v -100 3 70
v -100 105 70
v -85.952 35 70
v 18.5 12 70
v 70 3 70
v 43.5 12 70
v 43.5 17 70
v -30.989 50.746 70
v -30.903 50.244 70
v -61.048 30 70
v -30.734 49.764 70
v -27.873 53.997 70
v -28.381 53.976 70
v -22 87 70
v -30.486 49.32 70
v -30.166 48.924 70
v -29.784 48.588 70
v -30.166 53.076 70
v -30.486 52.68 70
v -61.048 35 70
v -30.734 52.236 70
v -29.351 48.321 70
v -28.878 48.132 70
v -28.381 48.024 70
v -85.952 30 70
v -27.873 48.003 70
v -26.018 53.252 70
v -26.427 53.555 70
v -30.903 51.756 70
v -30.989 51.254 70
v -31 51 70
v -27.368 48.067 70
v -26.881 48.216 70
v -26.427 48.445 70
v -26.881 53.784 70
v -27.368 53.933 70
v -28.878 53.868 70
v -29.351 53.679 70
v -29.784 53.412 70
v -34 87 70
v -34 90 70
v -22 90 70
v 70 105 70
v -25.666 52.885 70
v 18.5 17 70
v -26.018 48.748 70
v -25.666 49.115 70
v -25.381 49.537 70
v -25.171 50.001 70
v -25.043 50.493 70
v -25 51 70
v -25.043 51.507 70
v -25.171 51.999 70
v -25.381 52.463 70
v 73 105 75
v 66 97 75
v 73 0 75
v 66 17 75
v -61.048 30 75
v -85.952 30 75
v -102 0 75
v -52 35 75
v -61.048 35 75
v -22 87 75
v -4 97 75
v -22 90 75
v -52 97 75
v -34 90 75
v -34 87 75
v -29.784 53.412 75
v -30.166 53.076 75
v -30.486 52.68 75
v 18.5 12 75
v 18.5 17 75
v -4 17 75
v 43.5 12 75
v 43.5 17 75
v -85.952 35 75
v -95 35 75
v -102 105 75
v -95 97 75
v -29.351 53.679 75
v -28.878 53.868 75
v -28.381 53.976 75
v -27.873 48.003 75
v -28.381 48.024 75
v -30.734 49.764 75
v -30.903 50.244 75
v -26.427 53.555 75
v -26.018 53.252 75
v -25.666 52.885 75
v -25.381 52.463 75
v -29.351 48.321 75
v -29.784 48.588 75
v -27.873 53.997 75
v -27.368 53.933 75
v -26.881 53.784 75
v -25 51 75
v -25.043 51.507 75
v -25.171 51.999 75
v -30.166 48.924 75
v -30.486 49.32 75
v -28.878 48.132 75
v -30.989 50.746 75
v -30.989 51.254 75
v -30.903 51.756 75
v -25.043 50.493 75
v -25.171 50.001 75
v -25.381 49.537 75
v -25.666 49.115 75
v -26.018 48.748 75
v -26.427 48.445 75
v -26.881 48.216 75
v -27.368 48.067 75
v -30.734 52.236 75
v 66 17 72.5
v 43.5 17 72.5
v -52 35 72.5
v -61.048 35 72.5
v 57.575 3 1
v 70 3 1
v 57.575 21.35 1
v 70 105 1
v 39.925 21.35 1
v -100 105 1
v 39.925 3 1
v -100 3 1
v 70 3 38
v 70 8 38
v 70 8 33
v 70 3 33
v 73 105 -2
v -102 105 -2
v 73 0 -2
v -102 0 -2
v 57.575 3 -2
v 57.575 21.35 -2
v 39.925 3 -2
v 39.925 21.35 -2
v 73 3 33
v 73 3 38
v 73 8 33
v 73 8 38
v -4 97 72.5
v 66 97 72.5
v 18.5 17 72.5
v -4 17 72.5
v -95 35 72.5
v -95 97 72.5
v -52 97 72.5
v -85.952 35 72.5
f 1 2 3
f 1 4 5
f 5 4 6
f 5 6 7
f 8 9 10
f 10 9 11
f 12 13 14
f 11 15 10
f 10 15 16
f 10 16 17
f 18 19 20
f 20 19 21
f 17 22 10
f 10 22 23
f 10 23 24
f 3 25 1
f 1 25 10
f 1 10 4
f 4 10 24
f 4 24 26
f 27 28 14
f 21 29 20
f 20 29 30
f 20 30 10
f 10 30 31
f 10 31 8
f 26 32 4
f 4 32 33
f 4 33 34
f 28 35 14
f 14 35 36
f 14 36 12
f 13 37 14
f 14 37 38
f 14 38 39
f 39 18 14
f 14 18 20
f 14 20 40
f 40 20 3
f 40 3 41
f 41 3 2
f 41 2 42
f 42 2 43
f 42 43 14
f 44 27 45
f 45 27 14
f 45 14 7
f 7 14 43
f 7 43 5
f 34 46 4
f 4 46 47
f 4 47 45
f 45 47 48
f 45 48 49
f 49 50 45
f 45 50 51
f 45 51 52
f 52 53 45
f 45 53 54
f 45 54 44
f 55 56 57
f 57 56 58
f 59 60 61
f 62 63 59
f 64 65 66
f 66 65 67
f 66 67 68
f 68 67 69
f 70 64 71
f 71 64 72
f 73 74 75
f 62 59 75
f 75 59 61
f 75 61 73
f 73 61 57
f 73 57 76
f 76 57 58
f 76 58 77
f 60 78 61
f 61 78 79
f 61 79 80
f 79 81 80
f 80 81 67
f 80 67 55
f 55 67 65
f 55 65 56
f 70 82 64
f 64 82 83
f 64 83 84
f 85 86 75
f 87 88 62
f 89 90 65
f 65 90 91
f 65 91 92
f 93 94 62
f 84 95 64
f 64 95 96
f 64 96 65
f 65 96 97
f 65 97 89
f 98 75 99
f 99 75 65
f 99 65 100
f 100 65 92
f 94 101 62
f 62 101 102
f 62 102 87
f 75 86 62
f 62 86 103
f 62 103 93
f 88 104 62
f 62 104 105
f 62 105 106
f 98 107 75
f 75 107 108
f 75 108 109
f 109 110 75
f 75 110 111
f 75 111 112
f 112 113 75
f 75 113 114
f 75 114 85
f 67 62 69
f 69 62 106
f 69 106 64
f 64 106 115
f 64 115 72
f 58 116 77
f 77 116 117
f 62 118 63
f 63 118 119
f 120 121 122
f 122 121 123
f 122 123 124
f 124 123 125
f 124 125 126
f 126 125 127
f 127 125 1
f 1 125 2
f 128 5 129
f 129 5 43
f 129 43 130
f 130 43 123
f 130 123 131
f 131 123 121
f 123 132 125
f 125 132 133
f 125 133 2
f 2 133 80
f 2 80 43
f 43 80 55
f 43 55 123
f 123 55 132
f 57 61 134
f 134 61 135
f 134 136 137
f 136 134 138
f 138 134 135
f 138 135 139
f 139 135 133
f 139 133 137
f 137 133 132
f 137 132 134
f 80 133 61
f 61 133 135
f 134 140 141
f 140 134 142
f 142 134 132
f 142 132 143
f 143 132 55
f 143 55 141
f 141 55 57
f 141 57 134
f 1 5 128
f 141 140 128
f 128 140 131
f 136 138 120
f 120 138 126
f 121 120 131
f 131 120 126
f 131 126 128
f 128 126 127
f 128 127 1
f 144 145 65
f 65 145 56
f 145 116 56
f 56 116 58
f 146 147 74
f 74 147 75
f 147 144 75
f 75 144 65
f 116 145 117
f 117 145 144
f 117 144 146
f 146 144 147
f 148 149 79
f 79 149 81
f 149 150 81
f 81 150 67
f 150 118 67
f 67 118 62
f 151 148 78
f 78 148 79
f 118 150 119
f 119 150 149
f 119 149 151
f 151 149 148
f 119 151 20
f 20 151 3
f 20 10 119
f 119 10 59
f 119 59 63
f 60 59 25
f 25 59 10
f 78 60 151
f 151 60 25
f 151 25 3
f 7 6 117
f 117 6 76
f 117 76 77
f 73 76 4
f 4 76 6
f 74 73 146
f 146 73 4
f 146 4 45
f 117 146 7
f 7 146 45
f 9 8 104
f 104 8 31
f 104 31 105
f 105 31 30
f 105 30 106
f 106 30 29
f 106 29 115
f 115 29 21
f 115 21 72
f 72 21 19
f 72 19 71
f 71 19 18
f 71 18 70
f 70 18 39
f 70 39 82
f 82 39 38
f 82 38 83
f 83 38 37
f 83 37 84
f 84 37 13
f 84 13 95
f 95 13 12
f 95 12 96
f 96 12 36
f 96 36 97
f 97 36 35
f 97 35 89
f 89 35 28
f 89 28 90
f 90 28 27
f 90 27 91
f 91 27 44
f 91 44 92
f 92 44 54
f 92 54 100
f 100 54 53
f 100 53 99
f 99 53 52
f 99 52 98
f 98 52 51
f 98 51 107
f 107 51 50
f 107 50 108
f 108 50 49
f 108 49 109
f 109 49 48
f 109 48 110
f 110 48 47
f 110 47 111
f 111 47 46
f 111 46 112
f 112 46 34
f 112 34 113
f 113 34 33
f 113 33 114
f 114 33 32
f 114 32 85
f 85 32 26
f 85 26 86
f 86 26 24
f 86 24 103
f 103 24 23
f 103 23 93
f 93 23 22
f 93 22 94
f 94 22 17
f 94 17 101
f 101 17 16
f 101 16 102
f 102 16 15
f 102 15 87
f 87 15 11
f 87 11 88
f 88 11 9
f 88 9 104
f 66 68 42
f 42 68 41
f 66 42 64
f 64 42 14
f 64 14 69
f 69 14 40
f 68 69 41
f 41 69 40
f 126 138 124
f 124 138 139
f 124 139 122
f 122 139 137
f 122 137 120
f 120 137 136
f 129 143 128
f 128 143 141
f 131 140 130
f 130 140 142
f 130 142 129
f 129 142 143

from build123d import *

# Parameters (mm, degrees)
SKETCH1_W           = 175
SKETCH1_H           = 77
SKETCH1_W_2         = 170
SKETCH1_H_2         = 69
BOSS_EXTRUDE1_DEPTH = 105
SKETCH2_W           = 175
SKETCH2_H           = 77
BOSS_EXTRUDE2_DEPTH = 3
SKETCH3_W           = 70
SKETCH3_H           = 80
SKETCH3_W_2         = 43
SKETCH3_H_2         = 62
CUT_EXTRUDE1_DEPTH  = 2.5
SKETCH4_W           = 12
SKETCH4_H           = 3
SKETCH4_W_2         = 24.903681778
SKETCH4_H_2         = 5
SKETCH4_W_3         = 25
SKETCH4_R           = 3
CUT_EXTRUDE2_DEPTH  = 12.5
SKETCH5_W           = 17.65
SKETCH5_H           = 18.35
CUT_EXTRUDE3_DEPTH  = 10
SKETCH6_W           = 5
SKETCH6_H           = 5
CUT_EXTRUDE4_DEPTH  = 10


with BuildPart() as part:
    # Sketch1 → Boss-Extrude1 (new body)
    with BuildSketch(Plane(origin=(0, 0, 0), x_dir=(1, 0, 0), z_dir=(0, 1, 0))):
        with Locations((-14.5, -36.5)):
            Rectangle(SKETCH1_W, SKETCH1_H)
        with Locations((-15, -35.5)):
            Rectangle(SKETCH1_W_2, SKETCH1_H_2, mode=Mode.SUBTRACT)
    extrude(amount=BOSS_EXTRUDE1_DEPTH)

    # Sketch2 → Boss-Extrude2 (add)
    with BuildSketch(Plane(origin=(0, 0, 0), x_dir=(-1, 0, 0), z_dir=(0, -1, 0))):
        with Locations((14.5, -36.5)):
            Rectangle(SKETCH2_W, SKETCH2_H)
    extrude(amount=-BOSS_EXTRUDE2_DEPTH)

    # Sketch3 → Cut-Extrude1 (cut)
    with BuildSketch(Plane.XY.offset(75)):
        with Locations((31, 57)):
            Rectangle(SKETCH3_W, SKETCH3_H)
        with Locations((-73.5, 66)):
            Rectangle(SKETCH3_W_2, SKETCH3_H_2)
    extrude(amount=-CUT_EXTRUDE1_DEPTH, mode=Mode.SUBTRACT)

    # Sketch4 → Cut-Extrude2 (cut)
    with BuildSketch(Plane.XY.offset(75)):
        with Locations((-28, 88.5)):
            Rectangle(SKETCH4_W, SKETCH4_H)
        with Locations((-73.5, 32.5)):
            Rectangle(SKETCH4_W_2, SKETCH4_H_2)
        with Locations((31, 14.5)):
            Rectangle(SKETCH4_W_3, SKETCH4_H_2)
        with Locations((-28, 51)):
            Circle(SKETCH4_R)
    extrude(amount=-CUT_EXTRUDE2_DEPTH, mode=Mode.SUBTRACT)

    # Sketch5 → Cut-Extrude3 (cut)
    with BuildSketch(Plane.XY.offset(1)):
        with Locations((48.75, 12.175)):
            Rectangle(SKETCH5_W, SKETCH5_H)
    extrude(amount=-CUT_EXTRUDE3_DEPTH, mode=Mode.SUBTRACT)

    # Sketch6 → Cut-Extrude4 (cut)
    with BuildSketch(Plane.ZY.offset(-70)):
        with Locations((35.5, 5.5)):
            Rectangle(SKETCH6_W, SKETCH6_H)
    extrude(amount=-CUT_EXTRUDE4_DEPTH, mode=Mode.SUBTRACT)


solid = part.part
